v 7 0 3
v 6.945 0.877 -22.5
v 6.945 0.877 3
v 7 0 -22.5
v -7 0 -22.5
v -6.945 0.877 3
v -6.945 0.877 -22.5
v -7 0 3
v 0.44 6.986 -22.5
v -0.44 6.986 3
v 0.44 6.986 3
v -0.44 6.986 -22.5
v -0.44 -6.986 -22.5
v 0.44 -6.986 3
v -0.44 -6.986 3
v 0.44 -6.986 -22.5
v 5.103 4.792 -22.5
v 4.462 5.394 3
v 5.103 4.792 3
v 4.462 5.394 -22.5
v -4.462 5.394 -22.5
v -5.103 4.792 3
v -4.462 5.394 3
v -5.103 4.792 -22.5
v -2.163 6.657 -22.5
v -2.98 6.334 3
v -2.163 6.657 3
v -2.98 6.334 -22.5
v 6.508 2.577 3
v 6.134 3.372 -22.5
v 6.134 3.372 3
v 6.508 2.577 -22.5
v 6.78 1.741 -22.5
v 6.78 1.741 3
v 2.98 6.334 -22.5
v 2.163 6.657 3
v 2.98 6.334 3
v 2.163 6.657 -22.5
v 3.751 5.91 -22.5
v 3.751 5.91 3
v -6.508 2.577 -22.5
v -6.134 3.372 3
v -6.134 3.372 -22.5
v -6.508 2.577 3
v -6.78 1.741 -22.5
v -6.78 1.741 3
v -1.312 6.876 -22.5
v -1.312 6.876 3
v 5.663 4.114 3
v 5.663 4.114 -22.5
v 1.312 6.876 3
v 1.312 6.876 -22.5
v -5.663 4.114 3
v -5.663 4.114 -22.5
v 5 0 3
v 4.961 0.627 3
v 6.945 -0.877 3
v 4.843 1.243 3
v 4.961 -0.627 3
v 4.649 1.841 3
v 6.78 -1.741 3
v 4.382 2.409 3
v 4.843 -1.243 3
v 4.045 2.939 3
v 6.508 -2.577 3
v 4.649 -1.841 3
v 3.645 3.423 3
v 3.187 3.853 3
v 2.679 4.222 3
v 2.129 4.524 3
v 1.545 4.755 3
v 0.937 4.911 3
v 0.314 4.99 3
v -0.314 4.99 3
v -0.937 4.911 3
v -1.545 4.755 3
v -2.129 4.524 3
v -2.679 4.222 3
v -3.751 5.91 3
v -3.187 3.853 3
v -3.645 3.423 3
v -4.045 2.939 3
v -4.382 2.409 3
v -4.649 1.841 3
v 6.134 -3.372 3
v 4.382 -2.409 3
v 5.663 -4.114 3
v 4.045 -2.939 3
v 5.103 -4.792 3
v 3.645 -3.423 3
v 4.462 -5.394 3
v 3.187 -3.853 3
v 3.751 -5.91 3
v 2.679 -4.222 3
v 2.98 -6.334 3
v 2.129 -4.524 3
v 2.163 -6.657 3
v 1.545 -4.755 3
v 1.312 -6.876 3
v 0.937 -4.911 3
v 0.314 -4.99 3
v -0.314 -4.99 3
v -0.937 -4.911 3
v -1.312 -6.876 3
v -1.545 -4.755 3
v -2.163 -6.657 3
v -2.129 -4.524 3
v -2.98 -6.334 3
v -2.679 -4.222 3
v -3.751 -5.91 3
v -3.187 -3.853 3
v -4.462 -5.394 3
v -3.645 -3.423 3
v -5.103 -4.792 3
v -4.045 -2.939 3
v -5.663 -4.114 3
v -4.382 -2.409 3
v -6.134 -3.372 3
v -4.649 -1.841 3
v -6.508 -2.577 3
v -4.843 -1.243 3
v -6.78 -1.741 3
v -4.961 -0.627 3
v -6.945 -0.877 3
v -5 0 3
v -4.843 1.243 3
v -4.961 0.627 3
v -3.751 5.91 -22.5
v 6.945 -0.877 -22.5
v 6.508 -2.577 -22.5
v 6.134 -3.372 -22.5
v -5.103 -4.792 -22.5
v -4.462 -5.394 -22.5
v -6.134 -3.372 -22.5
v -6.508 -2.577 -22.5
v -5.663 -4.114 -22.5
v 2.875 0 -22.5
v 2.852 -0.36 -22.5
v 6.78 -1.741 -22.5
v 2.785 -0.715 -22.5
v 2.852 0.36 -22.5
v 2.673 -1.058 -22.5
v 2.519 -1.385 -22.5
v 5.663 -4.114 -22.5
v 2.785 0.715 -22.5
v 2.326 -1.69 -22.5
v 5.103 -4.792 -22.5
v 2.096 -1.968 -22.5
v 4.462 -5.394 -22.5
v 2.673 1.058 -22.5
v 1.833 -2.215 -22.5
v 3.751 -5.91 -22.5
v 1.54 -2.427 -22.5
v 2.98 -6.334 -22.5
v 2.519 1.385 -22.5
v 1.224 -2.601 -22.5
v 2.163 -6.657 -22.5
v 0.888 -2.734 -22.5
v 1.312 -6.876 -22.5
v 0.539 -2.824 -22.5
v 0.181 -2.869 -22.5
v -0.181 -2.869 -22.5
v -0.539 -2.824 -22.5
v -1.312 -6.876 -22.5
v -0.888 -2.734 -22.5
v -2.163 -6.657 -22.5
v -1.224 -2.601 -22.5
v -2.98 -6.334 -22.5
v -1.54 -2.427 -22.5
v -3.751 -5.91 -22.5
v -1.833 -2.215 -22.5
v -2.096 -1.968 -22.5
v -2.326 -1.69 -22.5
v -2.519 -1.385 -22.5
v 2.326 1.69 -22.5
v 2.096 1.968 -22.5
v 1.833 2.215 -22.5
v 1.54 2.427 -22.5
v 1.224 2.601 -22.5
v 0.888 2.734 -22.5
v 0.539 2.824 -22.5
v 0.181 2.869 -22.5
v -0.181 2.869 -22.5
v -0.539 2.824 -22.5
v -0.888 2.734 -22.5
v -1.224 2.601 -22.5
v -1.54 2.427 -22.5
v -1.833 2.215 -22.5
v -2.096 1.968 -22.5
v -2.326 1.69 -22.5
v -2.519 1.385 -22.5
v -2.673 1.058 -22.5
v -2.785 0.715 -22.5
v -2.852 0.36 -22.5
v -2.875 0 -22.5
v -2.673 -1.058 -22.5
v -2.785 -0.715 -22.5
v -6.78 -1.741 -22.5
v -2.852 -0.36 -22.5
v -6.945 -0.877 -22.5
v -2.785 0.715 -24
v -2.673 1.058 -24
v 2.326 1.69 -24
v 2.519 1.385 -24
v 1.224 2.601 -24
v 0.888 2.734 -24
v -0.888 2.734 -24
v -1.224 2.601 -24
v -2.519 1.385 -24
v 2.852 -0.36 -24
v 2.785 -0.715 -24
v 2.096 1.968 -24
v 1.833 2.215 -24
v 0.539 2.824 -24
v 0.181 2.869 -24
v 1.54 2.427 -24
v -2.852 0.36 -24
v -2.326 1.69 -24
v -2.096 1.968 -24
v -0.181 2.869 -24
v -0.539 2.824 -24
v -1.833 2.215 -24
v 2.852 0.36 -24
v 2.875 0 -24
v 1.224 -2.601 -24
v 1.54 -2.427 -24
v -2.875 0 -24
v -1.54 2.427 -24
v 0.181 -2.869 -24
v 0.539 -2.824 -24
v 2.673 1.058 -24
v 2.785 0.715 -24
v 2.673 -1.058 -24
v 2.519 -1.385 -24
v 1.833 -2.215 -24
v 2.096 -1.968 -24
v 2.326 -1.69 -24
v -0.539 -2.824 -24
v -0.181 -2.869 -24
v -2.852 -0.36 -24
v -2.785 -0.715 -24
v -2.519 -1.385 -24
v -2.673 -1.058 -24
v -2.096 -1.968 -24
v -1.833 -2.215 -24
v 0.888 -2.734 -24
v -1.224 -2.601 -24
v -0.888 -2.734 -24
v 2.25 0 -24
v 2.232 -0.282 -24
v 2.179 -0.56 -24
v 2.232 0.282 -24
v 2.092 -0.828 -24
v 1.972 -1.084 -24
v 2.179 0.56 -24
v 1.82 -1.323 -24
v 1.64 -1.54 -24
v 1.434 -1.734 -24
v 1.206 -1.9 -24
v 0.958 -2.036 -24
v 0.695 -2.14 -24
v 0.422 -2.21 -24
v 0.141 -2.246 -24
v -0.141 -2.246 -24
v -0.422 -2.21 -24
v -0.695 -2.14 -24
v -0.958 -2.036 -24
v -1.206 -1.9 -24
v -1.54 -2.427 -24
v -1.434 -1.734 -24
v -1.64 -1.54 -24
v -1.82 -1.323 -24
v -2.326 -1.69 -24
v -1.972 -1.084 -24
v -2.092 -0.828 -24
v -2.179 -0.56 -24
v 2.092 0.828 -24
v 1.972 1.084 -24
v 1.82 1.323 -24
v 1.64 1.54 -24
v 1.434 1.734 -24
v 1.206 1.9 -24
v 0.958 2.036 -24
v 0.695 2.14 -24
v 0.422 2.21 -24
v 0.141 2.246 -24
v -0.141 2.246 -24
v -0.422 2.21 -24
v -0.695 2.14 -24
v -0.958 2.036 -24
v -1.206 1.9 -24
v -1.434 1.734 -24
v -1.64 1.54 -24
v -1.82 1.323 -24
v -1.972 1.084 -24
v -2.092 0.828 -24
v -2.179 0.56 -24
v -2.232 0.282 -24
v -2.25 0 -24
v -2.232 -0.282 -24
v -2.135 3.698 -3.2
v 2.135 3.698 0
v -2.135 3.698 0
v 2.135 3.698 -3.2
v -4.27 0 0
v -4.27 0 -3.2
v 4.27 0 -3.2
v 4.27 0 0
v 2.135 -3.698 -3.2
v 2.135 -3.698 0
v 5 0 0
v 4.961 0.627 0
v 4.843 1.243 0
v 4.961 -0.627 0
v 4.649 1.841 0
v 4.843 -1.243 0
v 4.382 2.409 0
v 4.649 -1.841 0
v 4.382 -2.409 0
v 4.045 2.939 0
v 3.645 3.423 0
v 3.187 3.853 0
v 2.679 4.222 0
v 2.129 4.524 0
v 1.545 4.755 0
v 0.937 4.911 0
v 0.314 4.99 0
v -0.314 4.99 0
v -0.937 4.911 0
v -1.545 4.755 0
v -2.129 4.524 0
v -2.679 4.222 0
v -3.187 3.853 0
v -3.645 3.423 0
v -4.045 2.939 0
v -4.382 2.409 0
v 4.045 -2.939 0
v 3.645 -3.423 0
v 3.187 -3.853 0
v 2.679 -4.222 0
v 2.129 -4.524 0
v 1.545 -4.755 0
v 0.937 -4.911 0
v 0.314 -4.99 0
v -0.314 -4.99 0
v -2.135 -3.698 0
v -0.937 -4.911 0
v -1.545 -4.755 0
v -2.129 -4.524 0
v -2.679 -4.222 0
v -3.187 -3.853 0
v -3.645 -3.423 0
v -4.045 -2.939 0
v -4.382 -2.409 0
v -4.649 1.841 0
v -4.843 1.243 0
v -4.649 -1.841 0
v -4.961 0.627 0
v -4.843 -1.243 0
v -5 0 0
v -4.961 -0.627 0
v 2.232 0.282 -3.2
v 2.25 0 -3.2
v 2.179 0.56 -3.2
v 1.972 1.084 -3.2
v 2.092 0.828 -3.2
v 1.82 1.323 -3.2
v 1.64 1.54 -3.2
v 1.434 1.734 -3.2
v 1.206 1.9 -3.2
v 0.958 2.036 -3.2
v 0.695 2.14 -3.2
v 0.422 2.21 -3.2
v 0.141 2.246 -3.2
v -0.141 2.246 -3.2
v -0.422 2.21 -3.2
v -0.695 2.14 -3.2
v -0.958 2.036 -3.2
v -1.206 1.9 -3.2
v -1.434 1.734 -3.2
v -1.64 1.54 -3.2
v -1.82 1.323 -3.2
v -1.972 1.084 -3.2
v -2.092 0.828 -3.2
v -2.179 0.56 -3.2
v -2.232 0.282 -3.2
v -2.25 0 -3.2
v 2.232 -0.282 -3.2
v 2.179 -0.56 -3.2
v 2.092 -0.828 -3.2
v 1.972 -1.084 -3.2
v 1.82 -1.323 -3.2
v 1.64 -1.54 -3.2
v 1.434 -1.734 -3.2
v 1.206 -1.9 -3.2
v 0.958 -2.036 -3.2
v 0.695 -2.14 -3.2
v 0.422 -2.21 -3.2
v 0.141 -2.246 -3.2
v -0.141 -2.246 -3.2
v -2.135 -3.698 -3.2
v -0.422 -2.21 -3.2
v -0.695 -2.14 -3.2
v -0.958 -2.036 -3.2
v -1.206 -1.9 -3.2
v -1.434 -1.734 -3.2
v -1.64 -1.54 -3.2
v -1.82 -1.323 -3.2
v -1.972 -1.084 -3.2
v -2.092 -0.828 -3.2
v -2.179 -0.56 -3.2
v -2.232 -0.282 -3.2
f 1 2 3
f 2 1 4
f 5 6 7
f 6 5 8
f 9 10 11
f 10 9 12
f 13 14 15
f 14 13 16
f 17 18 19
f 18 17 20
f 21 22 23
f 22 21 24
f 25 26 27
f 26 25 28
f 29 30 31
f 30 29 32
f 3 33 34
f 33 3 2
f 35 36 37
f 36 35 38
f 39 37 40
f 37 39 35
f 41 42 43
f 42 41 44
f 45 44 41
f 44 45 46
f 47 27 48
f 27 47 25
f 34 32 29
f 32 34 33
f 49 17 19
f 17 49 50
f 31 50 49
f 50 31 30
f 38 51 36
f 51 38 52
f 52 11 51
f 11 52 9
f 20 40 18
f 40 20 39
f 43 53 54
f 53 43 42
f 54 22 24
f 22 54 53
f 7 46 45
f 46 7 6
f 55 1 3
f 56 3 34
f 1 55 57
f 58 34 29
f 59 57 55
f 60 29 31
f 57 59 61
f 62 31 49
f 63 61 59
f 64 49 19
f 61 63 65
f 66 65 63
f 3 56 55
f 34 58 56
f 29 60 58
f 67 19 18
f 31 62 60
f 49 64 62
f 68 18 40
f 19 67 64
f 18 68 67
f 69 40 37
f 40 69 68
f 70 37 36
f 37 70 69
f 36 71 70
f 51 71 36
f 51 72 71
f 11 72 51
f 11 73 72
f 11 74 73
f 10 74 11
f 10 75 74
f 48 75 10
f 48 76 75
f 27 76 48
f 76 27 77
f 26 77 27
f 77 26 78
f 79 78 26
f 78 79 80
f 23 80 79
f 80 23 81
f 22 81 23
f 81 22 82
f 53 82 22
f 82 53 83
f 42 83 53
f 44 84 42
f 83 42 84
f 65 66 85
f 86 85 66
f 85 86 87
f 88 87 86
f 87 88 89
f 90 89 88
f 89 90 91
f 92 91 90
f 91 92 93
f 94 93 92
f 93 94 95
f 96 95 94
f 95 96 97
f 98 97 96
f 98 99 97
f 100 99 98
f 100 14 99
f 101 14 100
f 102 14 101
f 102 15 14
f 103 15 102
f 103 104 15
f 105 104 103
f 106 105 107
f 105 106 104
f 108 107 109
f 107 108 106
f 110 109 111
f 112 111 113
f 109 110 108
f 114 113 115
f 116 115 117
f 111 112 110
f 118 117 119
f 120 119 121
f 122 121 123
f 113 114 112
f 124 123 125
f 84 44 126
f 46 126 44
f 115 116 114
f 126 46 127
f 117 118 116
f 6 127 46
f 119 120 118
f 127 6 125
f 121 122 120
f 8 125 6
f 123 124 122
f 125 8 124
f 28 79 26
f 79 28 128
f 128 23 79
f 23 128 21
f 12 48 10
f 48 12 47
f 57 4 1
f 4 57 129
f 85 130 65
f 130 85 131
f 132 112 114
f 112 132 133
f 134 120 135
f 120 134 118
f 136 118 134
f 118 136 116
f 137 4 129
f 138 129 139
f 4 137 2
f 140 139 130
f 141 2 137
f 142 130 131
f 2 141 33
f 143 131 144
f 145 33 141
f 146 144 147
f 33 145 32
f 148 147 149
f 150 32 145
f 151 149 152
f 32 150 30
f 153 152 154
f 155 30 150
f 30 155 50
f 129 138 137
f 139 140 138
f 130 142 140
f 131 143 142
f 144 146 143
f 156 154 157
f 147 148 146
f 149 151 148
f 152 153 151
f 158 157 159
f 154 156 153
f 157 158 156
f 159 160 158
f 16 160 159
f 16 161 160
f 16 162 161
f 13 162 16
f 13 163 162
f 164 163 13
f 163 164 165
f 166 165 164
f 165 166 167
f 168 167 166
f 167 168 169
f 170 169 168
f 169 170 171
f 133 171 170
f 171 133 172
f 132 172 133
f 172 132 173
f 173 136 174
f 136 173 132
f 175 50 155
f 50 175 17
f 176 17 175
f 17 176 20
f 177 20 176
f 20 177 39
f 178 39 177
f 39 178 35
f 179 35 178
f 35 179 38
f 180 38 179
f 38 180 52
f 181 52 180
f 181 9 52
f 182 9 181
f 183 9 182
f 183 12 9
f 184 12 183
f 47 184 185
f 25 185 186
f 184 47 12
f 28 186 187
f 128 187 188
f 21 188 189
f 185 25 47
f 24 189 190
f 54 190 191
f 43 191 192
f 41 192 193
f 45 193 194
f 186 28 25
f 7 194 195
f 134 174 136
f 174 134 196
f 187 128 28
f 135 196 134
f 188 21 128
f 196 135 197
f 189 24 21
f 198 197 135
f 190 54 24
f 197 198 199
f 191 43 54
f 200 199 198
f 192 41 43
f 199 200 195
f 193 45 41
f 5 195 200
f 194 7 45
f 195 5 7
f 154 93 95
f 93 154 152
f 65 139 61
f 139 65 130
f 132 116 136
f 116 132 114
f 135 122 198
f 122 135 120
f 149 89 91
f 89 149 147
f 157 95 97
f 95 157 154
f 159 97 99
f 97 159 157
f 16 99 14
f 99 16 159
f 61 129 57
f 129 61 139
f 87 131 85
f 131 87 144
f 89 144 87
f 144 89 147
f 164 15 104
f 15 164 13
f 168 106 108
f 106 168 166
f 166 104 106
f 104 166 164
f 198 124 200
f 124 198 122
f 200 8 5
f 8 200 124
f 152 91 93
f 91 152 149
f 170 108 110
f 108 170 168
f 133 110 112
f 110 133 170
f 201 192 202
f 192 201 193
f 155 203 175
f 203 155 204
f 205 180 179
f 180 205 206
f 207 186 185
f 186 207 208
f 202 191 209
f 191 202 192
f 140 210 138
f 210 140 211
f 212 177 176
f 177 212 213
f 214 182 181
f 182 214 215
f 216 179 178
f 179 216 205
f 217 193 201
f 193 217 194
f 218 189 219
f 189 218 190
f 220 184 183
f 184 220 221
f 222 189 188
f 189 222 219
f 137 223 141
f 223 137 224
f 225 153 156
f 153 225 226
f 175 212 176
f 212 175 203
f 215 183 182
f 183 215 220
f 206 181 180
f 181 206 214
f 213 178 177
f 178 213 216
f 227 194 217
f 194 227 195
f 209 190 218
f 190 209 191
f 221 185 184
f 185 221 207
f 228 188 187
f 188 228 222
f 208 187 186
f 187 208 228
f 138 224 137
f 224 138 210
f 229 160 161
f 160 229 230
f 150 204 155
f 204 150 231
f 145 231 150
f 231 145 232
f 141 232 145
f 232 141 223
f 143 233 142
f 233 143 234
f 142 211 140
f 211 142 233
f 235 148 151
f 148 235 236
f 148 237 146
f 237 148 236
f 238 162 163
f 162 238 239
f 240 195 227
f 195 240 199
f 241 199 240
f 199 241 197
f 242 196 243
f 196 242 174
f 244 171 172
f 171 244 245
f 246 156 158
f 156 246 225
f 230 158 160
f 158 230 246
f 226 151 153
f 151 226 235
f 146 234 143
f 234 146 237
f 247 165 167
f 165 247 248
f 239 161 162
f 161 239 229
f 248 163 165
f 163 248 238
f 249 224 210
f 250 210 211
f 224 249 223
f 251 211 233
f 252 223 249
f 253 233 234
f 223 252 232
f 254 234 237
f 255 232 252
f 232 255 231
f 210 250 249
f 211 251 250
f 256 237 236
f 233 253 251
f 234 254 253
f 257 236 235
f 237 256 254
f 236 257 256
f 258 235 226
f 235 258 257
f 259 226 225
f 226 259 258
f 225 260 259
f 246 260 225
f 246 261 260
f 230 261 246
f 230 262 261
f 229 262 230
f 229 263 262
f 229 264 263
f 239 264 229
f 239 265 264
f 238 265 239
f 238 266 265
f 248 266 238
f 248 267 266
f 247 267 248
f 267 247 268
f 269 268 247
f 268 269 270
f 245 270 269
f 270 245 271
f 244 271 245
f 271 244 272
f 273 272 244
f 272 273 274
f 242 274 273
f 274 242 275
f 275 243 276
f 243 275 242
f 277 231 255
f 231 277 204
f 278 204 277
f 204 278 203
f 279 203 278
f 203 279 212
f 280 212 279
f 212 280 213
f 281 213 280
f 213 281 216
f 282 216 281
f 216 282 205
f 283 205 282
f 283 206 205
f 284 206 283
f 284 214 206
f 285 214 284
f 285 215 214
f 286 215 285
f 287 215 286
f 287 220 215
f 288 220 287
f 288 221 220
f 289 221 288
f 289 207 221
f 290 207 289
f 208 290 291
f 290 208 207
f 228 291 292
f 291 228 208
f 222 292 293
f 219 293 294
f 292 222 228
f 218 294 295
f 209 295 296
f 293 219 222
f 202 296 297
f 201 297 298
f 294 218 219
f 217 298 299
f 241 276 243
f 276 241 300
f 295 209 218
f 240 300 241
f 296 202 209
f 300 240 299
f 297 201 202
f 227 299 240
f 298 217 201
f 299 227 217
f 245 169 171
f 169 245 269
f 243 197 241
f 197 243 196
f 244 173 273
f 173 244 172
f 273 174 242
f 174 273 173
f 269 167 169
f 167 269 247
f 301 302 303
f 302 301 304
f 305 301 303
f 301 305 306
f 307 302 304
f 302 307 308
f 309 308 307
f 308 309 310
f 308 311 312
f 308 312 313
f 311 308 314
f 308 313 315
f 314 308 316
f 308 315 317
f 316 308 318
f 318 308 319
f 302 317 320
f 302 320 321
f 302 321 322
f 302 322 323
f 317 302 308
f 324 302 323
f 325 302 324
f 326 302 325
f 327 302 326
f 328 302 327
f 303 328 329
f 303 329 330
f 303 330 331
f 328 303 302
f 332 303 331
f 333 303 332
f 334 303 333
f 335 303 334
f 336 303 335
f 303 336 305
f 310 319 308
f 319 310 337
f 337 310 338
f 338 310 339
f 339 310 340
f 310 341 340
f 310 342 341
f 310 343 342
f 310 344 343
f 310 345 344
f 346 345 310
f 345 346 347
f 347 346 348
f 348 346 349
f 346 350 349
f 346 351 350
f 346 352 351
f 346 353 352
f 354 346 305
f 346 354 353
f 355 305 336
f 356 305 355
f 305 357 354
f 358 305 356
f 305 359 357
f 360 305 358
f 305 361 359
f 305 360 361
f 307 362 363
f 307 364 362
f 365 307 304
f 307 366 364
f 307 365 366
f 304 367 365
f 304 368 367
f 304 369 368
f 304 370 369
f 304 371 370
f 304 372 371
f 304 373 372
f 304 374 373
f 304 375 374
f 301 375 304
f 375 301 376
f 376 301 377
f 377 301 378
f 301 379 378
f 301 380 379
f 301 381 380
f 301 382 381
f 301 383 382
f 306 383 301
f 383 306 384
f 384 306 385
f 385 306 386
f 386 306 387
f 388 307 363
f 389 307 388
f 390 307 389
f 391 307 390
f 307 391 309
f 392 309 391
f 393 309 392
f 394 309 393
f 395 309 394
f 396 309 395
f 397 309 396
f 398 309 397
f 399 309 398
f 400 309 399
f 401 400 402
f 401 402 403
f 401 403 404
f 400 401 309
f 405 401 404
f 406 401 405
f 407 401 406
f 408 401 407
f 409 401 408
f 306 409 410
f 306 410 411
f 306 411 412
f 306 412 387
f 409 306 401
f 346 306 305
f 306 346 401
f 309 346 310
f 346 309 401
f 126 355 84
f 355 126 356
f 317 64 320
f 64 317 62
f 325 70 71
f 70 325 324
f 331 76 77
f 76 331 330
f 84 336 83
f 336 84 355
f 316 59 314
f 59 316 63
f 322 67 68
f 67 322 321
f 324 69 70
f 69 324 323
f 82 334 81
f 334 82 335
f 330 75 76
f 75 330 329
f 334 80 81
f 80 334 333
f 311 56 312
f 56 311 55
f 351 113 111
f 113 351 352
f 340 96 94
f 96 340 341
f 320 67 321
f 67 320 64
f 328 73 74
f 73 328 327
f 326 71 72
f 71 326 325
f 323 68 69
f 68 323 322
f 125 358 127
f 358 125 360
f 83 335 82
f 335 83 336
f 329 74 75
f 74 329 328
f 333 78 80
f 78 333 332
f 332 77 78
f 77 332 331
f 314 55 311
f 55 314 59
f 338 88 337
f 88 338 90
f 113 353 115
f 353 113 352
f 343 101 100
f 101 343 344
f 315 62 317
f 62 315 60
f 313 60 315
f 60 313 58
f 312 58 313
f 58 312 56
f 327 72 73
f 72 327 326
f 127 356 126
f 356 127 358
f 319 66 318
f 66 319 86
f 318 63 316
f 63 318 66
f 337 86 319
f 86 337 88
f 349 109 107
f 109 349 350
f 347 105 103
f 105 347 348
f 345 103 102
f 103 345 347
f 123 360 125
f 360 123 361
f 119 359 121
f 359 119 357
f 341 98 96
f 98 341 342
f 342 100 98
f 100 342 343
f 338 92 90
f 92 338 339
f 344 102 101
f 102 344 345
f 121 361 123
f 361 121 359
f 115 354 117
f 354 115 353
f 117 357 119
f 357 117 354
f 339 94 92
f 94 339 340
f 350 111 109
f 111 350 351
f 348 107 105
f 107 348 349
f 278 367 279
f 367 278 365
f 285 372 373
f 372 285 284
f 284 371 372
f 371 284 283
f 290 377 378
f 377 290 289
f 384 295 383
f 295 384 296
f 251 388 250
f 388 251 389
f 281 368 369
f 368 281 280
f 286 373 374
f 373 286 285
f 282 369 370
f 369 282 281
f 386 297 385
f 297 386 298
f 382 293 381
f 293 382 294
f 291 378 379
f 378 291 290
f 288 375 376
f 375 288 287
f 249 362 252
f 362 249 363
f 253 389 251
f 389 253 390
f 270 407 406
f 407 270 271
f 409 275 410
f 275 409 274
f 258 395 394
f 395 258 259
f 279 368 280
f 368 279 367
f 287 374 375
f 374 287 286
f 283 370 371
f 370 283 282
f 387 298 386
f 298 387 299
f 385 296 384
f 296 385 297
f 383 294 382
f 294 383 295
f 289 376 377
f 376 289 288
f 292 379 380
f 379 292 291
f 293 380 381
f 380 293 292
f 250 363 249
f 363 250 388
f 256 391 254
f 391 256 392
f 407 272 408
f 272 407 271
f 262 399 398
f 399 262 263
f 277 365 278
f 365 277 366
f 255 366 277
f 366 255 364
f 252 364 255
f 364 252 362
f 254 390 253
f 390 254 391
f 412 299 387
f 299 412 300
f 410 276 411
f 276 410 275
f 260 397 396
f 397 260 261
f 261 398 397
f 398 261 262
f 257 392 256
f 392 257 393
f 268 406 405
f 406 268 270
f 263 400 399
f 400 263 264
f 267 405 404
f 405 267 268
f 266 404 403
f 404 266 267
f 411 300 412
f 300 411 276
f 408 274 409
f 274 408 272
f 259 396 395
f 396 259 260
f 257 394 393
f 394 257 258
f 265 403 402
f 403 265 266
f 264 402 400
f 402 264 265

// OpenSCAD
$fn = 50;

difference() {
	union() {
		translate(v = [0, 0, -22.5]) {
			cylinder(h = 25.5, r = 7.0);
		}
		#translate(v = [0, 0, -24.0]) {
			cylinder(h = 24, r = 2.875);
		}
	}
	union() {
		translate(v = [0, 0, 0]) {
			rotate(a = [0, 0, 0]) {
				difference() {
					union() {
						translate(v = [0, 0, -3.2]) {
							linear_extrude(height = 3.2) {
								polygon(points = [[4.2698, 0.0], [2.1349000000000005, 3.697755269078796], [-2.134899999999999, 3.6977552690787965], [-4.2698, 5.228996902999369e-16], [-2.134900000000002, -3.6977552690787956], [2.1348999999999974, -3.697755269078798]]);
							}
						}
					}
					union();
				}
			}
		}
		#cylinder(h = 3, r = 5.0);
		#translate(v = [0, 0, -100.0]) {
			cylinder(h = 200, r = 2.25);
		}
	}
}
